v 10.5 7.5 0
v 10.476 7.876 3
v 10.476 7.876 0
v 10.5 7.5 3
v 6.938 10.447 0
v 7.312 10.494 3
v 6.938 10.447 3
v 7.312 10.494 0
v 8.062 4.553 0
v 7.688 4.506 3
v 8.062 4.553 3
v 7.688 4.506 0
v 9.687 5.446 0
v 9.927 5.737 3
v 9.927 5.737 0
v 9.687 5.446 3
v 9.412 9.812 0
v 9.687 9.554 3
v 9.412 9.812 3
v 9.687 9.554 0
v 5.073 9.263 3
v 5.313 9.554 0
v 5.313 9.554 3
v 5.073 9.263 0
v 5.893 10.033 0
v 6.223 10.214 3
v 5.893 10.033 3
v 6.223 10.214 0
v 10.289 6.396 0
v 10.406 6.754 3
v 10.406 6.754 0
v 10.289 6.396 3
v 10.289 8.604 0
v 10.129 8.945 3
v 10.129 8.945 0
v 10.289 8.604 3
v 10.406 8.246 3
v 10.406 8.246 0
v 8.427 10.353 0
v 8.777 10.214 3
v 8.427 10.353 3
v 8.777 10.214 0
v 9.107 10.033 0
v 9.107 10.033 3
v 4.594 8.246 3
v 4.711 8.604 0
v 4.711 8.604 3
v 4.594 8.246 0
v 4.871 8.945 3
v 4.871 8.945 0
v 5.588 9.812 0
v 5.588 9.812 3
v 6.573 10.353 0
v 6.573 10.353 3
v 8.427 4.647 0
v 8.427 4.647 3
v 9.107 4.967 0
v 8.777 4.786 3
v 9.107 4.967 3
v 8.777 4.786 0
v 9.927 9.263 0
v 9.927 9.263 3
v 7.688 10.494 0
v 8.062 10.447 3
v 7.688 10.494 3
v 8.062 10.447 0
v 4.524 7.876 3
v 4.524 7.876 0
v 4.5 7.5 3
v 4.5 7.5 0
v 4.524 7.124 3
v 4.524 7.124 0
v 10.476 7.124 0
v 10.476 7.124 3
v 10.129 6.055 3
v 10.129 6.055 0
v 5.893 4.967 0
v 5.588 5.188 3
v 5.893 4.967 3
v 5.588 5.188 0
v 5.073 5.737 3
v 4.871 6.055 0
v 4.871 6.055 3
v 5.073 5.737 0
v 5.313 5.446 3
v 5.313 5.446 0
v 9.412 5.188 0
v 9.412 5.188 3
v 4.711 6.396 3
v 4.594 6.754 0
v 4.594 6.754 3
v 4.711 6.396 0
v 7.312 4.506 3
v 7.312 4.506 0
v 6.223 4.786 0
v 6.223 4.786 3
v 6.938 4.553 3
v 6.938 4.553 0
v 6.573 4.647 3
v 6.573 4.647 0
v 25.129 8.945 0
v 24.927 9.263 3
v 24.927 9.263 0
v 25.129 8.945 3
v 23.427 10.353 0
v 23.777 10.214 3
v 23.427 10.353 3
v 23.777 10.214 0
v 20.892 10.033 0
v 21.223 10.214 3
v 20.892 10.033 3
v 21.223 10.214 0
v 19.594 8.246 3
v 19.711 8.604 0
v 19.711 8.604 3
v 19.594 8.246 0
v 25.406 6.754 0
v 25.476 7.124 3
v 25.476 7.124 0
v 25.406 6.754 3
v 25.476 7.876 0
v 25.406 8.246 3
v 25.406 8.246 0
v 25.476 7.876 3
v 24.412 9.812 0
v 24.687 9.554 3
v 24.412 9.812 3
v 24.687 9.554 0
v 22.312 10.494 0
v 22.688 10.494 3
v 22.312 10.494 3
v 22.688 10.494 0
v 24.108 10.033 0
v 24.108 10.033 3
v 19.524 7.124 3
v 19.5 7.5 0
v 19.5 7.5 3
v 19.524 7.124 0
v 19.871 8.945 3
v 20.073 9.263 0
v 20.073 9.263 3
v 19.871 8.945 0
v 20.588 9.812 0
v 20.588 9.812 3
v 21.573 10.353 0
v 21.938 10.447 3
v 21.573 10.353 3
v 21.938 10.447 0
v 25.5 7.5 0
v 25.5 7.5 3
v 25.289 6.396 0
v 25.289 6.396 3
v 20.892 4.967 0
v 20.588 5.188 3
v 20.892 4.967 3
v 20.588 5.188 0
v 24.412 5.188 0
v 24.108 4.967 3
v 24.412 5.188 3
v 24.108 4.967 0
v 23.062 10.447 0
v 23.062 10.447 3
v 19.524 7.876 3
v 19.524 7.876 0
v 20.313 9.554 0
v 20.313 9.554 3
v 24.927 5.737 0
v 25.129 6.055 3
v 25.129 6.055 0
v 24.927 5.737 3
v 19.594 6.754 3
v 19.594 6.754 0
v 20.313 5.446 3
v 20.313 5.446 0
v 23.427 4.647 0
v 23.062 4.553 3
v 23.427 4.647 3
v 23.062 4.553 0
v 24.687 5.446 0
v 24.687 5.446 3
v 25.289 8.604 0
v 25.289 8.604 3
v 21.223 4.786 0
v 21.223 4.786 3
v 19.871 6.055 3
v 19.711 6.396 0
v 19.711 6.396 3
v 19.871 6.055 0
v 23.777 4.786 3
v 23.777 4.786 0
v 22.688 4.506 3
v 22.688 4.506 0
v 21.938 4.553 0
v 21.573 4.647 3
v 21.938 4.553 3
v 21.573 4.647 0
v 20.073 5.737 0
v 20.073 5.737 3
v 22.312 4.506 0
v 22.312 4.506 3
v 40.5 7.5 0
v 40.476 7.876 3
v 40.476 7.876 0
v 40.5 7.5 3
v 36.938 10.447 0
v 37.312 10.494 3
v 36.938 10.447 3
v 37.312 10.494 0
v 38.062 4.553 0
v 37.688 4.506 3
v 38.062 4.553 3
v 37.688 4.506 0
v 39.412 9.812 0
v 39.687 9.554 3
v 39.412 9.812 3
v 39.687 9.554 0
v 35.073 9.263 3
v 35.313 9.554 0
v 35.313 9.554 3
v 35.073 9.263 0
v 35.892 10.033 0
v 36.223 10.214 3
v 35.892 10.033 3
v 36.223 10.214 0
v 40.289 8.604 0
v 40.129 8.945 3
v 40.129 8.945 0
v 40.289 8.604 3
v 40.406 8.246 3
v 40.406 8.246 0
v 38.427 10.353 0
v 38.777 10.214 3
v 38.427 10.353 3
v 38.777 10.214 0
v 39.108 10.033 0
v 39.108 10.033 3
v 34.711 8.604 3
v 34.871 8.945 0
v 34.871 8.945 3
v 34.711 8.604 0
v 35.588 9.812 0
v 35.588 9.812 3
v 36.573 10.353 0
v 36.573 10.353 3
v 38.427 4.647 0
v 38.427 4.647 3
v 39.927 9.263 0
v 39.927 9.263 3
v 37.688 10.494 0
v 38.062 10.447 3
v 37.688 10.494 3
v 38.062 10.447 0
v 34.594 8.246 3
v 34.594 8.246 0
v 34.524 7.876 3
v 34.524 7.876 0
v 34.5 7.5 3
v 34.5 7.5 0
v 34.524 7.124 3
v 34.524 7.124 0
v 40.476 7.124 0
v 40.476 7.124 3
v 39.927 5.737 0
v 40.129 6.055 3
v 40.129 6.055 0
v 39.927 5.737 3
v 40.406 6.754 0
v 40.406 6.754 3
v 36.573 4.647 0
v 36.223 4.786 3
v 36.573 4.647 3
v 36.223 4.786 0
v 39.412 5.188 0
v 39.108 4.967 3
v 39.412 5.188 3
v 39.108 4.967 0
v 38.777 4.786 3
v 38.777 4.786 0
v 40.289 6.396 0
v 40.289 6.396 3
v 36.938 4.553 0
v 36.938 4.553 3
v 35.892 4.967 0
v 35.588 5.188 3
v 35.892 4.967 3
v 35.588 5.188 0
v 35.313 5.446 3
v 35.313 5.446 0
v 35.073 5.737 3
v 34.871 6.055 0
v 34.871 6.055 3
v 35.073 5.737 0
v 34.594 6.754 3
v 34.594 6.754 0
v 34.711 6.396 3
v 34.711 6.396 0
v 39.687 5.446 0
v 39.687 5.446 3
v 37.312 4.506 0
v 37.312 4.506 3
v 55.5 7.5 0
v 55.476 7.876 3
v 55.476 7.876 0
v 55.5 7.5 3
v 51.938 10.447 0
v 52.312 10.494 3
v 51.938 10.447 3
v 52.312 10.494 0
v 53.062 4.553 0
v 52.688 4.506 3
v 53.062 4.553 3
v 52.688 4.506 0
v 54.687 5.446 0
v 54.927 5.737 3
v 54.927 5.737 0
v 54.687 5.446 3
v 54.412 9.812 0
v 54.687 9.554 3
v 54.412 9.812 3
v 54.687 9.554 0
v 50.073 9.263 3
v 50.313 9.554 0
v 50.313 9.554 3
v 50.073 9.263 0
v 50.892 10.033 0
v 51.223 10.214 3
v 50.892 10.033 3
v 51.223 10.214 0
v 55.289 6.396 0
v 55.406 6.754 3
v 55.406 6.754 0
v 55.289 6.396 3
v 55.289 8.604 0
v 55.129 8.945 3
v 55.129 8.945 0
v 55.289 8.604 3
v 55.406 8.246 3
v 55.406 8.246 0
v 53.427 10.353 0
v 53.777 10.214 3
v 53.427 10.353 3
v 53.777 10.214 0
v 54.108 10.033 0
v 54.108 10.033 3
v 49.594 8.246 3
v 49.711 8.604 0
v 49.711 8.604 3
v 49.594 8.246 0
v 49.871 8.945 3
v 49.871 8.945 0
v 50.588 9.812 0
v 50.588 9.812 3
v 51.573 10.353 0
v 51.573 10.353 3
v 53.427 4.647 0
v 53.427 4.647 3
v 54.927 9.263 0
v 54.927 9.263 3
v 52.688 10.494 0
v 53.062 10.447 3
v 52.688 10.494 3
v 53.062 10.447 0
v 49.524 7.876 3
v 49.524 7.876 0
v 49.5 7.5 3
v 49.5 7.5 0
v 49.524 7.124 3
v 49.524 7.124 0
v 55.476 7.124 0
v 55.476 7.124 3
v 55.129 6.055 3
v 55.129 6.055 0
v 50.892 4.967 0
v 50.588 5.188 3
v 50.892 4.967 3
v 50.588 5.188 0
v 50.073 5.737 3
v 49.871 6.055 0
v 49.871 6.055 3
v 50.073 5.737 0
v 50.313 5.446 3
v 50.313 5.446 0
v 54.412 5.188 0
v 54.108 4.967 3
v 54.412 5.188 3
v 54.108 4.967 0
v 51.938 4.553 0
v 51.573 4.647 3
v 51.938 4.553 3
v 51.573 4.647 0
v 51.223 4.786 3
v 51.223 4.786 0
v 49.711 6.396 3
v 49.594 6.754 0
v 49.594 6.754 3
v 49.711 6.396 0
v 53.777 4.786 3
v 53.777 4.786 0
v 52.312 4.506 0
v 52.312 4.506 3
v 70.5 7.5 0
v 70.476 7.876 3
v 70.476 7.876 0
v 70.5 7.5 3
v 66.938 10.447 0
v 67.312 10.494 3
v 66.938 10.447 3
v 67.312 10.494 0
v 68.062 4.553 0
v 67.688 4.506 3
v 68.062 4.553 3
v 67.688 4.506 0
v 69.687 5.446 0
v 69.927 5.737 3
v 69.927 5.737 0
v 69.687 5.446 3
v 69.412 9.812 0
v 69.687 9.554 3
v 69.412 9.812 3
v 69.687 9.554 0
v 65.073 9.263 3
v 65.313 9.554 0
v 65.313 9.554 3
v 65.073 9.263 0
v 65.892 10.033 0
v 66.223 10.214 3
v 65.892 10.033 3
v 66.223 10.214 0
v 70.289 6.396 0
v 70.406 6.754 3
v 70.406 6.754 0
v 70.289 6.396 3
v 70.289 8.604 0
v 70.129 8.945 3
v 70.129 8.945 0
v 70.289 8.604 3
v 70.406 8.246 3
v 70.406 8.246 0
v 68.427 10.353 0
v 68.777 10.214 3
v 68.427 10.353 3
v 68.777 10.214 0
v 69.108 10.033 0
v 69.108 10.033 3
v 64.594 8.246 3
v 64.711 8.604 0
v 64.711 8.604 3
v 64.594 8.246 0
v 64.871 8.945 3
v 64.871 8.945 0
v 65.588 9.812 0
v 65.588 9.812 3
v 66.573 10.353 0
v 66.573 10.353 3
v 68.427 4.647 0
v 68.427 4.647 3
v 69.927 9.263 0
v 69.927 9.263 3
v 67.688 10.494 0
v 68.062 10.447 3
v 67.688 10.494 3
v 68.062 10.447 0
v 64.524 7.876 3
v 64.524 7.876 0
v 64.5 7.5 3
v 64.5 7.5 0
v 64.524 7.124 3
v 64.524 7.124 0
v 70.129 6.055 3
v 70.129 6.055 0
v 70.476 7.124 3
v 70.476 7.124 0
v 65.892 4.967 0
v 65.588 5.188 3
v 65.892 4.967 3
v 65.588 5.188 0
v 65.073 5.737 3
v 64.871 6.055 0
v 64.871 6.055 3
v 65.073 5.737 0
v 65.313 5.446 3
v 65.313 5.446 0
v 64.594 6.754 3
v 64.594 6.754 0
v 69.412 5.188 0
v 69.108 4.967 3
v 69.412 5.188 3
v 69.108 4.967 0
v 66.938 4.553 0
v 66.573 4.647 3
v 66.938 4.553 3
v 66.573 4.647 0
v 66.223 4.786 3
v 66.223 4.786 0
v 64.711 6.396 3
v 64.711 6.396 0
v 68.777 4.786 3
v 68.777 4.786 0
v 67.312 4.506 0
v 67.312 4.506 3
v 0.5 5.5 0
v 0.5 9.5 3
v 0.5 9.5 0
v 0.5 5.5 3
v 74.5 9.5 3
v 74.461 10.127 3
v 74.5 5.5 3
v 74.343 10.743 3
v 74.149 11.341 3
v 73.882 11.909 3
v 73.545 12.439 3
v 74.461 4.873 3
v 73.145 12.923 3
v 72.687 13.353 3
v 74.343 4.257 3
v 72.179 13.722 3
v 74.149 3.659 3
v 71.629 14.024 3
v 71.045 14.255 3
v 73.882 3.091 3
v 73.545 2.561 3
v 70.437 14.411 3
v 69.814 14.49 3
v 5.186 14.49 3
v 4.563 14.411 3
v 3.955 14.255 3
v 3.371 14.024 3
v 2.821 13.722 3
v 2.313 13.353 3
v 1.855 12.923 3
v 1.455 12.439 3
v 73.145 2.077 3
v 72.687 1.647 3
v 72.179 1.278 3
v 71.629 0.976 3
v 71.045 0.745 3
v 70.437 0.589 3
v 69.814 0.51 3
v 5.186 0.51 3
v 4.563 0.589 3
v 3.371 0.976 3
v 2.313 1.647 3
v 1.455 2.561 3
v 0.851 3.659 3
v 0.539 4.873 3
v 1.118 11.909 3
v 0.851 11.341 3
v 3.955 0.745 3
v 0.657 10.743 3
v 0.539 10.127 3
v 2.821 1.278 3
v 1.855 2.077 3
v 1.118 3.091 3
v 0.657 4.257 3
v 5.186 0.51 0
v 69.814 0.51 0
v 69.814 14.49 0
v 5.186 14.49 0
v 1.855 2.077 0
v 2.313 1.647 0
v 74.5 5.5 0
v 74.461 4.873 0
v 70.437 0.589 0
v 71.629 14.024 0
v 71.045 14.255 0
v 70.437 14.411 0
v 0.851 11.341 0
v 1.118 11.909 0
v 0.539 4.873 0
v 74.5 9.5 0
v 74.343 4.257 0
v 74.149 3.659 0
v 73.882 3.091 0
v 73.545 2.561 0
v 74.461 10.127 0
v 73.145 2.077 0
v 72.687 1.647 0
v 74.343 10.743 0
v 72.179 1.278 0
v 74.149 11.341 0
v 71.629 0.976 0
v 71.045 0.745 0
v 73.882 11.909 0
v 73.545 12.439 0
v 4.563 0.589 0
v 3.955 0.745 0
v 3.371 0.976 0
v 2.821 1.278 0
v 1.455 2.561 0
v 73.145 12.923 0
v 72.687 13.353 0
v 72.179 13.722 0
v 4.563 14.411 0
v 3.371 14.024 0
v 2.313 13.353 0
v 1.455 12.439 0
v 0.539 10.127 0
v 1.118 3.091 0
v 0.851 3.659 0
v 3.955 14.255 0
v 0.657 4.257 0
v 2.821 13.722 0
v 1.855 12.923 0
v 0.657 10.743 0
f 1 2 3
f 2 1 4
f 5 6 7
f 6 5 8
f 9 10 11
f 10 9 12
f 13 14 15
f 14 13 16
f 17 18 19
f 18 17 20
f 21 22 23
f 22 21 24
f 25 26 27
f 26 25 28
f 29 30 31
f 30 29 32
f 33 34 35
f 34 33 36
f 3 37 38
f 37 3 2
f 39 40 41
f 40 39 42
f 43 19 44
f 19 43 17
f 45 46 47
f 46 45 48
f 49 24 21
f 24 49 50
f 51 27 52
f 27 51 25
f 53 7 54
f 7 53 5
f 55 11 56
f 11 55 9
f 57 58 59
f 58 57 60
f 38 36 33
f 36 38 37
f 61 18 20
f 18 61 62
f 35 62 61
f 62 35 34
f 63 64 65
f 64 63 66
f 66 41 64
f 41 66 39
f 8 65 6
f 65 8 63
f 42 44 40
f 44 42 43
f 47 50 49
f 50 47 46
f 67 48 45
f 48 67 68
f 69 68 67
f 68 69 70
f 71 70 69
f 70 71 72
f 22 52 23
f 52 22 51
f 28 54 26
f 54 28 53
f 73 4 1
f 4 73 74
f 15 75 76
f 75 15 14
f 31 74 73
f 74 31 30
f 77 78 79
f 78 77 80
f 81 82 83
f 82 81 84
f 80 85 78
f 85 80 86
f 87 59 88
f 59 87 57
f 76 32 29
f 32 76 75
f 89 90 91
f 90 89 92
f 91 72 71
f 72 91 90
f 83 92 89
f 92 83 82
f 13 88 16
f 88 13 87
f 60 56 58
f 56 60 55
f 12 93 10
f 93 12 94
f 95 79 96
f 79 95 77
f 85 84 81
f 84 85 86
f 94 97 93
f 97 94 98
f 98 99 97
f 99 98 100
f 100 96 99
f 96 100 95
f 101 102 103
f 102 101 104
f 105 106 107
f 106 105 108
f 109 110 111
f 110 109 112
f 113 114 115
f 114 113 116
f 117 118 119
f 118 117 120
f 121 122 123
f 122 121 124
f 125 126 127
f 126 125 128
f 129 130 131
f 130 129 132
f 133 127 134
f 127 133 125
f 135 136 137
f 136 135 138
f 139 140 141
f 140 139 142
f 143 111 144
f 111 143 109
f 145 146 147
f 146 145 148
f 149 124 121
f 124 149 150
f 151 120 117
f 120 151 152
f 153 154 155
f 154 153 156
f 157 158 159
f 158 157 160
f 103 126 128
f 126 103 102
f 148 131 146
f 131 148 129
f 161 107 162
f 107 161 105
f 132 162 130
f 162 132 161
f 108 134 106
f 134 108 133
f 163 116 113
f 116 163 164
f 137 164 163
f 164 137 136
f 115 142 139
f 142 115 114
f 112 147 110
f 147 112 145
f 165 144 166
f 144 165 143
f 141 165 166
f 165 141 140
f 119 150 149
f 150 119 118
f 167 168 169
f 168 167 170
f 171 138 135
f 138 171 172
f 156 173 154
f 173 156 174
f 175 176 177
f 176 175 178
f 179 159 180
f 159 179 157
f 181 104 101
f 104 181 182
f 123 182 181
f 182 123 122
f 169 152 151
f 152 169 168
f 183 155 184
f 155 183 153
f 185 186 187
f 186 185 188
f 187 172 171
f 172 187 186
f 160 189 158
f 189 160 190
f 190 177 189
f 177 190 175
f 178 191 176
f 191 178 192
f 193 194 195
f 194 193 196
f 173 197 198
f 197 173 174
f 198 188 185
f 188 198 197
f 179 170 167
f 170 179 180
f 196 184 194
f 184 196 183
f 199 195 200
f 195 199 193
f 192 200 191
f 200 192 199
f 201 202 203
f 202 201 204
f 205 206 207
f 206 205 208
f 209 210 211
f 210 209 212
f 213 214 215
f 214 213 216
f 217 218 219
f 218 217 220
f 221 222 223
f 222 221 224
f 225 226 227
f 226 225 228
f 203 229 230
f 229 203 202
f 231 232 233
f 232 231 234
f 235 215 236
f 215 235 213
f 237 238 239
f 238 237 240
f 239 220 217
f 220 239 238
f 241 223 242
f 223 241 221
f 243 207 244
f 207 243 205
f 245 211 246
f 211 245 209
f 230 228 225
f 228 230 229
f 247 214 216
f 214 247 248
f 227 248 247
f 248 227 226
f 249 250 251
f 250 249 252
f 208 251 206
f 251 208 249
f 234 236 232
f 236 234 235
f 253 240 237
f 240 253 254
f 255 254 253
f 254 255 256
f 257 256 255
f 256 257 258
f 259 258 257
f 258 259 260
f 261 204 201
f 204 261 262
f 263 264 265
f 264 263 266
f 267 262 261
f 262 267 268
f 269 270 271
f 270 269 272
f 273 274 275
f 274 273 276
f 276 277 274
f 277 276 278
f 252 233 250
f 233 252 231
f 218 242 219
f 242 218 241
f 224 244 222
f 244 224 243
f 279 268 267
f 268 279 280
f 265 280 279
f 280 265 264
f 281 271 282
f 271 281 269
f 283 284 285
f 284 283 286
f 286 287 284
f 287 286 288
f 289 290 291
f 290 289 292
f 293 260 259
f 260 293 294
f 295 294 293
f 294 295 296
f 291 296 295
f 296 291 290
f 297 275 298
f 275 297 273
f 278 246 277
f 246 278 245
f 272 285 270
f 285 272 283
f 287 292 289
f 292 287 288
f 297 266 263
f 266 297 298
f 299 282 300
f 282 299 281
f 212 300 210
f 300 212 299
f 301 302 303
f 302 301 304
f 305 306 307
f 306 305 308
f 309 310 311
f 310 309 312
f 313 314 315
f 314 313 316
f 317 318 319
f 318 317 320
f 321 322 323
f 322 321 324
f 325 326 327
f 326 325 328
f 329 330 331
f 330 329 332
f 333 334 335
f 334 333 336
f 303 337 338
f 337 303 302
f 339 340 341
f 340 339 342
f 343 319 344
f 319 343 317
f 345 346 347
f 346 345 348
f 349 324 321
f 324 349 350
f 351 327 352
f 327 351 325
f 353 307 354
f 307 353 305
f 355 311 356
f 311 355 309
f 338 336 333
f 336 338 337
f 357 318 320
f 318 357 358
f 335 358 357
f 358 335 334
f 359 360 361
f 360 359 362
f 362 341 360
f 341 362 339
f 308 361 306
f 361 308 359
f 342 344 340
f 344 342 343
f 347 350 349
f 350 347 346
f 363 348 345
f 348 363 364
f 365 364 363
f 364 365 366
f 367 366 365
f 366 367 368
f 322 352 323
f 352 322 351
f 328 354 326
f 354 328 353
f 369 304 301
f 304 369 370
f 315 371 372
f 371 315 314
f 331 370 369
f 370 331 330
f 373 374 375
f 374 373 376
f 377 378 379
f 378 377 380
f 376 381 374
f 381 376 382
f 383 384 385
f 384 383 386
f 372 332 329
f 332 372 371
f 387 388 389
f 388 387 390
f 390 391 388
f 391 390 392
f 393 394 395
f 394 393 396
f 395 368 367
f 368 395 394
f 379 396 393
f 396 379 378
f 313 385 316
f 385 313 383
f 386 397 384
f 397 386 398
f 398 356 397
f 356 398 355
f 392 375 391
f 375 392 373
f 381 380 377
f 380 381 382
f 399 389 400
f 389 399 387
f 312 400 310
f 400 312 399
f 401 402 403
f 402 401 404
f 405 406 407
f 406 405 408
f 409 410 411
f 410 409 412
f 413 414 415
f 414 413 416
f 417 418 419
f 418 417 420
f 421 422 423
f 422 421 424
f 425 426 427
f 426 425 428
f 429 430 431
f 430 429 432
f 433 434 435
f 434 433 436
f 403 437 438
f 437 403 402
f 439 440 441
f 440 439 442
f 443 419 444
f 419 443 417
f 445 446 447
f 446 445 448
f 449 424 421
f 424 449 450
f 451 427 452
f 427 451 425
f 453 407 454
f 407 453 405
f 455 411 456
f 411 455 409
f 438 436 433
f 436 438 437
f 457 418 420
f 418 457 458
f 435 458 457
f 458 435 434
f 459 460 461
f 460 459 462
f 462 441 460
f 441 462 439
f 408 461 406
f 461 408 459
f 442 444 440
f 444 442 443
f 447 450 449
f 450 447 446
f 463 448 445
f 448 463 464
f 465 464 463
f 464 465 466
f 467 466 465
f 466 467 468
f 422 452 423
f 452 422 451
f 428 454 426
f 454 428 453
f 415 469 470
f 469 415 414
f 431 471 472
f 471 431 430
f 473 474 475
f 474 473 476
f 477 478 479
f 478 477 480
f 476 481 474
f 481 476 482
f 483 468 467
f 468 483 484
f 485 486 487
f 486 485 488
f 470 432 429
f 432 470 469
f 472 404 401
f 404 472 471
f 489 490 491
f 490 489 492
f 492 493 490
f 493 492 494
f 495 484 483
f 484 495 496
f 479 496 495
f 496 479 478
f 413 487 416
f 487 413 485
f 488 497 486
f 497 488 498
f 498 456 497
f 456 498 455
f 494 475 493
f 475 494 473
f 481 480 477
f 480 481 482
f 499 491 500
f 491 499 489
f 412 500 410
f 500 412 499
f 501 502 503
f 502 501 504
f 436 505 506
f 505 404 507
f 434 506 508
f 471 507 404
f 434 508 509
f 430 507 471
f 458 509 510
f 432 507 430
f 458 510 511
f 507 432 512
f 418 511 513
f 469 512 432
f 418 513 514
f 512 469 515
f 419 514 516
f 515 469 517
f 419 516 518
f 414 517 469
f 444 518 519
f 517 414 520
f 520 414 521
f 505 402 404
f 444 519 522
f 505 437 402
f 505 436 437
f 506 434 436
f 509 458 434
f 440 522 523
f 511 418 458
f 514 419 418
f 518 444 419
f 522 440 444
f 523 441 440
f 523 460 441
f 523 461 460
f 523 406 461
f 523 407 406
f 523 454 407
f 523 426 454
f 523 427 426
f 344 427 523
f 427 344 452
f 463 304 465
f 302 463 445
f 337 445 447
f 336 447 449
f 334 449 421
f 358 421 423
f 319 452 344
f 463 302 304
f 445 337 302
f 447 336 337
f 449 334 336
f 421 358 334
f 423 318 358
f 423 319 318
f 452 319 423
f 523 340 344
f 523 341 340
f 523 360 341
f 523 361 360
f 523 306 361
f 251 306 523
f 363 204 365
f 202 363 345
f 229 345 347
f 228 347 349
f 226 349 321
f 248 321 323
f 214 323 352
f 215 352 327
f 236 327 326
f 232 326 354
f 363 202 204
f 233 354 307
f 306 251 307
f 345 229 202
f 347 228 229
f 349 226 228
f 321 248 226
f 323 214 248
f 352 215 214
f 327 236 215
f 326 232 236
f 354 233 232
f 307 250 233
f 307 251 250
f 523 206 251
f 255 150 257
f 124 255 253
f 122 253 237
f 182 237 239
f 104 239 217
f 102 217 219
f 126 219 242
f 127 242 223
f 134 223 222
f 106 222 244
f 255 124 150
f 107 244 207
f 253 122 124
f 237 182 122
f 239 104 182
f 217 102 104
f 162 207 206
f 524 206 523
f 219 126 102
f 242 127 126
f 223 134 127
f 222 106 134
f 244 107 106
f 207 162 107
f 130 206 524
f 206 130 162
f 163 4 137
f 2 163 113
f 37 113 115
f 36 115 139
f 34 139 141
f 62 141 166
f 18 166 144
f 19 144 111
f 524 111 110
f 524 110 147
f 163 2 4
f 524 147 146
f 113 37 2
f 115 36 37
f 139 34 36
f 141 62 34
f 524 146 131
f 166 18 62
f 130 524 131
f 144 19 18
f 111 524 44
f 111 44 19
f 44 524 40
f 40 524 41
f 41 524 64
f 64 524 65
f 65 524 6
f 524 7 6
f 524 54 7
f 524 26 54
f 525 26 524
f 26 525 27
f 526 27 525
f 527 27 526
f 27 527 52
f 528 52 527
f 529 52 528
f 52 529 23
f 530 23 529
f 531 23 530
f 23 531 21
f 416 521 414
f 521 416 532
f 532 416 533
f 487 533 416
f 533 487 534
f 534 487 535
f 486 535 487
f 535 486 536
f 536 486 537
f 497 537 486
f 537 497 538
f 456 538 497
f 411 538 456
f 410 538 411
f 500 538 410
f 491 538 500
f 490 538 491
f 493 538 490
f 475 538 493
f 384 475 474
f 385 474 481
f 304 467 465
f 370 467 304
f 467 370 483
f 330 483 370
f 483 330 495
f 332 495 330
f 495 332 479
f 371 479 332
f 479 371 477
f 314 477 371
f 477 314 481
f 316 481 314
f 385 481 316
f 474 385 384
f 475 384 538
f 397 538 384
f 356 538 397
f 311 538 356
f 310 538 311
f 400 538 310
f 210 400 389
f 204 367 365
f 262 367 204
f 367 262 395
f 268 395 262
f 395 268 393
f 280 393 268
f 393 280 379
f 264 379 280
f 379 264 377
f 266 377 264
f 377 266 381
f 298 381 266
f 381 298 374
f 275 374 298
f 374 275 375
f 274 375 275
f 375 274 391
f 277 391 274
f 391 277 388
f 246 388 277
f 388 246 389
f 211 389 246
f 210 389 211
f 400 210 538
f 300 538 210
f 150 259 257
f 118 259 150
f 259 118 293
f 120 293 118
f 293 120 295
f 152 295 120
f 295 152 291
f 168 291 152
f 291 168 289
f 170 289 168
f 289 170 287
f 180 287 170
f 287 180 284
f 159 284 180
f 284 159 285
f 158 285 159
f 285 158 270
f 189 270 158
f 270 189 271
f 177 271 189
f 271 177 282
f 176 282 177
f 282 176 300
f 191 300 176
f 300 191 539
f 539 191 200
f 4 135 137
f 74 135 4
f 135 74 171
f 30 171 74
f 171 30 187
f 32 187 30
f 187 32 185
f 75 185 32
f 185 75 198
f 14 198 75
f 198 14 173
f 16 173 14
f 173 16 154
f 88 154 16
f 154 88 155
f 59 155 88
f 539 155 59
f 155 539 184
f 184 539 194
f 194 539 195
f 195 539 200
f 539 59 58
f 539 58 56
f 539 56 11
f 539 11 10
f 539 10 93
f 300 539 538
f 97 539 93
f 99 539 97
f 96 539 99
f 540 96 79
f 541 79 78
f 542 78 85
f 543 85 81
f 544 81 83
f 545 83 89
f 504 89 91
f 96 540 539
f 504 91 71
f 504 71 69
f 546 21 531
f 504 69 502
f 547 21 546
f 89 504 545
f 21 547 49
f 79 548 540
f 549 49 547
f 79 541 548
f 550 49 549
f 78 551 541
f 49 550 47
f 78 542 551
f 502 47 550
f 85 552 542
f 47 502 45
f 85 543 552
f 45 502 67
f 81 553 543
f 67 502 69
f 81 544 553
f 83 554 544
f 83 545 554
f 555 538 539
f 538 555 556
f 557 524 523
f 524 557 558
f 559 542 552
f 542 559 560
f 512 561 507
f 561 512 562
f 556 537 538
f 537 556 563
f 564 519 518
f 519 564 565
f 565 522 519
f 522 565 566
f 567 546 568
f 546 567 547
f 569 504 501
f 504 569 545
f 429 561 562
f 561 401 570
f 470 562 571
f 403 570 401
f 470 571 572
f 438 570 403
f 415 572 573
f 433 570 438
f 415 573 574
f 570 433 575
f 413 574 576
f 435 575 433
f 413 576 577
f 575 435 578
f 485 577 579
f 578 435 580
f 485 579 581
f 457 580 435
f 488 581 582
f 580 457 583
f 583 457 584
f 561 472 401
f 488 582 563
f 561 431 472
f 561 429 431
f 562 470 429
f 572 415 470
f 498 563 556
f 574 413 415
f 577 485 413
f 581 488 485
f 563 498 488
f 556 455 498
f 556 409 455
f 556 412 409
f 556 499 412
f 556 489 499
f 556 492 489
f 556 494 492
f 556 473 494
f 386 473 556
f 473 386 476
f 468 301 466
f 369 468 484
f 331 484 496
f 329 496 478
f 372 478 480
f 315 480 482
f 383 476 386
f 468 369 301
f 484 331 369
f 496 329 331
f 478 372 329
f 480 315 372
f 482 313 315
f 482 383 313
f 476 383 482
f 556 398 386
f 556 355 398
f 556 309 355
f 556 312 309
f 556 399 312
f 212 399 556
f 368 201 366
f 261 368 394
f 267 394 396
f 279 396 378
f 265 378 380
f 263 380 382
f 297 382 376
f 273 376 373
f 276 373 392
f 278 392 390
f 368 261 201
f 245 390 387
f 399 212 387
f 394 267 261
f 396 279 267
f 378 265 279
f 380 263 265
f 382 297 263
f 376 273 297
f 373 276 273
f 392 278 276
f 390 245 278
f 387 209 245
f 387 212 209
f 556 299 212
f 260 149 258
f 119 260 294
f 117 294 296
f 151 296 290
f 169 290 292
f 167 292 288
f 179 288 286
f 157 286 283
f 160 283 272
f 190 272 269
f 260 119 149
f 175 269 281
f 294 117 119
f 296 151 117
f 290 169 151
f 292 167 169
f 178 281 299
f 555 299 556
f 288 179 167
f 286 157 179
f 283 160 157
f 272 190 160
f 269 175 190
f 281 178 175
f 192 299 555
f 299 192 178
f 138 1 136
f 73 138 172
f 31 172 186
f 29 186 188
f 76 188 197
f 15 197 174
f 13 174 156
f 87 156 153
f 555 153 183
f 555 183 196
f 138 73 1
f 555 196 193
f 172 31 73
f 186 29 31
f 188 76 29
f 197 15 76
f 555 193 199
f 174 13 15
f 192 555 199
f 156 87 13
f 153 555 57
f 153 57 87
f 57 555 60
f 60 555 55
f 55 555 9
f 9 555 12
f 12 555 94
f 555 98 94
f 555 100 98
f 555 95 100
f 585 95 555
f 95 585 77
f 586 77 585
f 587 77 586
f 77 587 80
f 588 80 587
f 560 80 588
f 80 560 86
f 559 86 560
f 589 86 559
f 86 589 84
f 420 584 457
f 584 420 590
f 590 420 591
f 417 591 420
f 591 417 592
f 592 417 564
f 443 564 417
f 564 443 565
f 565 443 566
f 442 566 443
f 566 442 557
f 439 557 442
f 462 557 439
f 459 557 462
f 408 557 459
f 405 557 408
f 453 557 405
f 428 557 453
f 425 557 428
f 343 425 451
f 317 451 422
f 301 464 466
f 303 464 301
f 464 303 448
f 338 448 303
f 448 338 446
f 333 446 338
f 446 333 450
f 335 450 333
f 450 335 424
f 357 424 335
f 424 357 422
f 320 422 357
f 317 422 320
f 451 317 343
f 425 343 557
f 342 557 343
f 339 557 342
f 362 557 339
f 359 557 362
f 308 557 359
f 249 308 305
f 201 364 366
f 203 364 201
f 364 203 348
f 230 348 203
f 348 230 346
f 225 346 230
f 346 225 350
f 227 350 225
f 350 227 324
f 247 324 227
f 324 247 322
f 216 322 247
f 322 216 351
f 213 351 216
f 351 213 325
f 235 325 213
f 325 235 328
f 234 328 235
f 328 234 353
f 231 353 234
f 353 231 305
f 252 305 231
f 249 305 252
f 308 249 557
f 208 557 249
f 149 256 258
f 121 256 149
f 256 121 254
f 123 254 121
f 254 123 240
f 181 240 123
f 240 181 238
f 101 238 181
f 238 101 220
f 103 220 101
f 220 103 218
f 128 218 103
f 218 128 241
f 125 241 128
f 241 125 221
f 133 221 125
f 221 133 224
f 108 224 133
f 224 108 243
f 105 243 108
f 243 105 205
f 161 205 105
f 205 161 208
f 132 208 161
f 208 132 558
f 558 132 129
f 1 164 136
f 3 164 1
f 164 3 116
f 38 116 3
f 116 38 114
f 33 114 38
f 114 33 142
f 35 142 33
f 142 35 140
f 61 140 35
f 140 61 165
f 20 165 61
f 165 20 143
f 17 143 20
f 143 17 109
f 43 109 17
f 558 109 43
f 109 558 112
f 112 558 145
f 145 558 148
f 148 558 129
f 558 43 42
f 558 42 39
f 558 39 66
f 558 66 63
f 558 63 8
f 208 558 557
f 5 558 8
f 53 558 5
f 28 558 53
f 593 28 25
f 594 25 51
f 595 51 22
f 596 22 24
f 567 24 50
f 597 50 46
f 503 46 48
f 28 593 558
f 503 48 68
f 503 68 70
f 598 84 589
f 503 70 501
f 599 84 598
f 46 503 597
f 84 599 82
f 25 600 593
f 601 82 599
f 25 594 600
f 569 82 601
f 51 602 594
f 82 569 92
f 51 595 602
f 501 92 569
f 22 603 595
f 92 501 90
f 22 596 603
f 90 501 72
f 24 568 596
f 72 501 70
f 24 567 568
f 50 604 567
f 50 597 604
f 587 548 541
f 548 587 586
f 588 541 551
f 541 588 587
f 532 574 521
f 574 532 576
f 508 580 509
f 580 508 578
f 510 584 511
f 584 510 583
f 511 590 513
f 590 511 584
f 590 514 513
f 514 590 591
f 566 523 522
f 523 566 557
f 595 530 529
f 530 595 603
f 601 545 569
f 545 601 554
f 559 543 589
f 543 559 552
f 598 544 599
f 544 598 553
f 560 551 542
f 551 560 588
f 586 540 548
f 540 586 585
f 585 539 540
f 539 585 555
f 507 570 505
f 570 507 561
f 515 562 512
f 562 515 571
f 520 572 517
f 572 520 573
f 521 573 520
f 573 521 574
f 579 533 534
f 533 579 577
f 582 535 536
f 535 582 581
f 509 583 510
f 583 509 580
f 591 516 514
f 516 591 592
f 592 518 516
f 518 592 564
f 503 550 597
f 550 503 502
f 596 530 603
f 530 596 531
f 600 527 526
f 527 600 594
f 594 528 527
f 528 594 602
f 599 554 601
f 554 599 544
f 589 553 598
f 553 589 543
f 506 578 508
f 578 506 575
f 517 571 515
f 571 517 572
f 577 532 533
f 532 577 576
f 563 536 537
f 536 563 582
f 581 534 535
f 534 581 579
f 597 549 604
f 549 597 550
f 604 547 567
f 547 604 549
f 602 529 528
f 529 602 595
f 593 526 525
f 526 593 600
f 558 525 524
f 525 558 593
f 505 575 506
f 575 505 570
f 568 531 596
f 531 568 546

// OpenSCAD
// Generated by SolidPython 1.1.3 on 2023-01-09 15:00:26
$fn = 50;


difference() {
	union() {
		translate(v = [37.5000000000, 7.5000000000, 0]) {
			rotate(a = [0, 0, 0]) {
				hull() {
					translate(v = [-32.0000000000, 2.0000000000, 0]) {
						rotate(a = [0, 0, 0]) {
							translate(v = [0, 0, 0]) {
								rotate(a = [0, 0, 0]) {
									cylinder(h = 3, r = 5);
								}
							}
						}
					}
					translate(v = [32.0000000000, 2.0000000000, 0]) {
						rotate(a = [0, 0, 0]) {
							translate(v = [0, 0, 0]) {
								rotate(a = [0, 0, 0]) {
									cylinder(h = 3, r = 5);
								}
							}
						}
					}
					translate(v = [-32.0000000000, -2.0000000000, 0]) {
						rotate(a = [0, 0, 0]) {
							translate(v = [0, 0, 0]) {
								rotate(a = [0, 0, 0]) {
									cylinder(h = 3, r = 5);
								}
							}
						}
					}
					translate(v = [32.0000000000, -2.0000000000, 0]) {
						rotate(a = [0, 0, 0]) {
							translate(v = [0, 0, 0]) {
								rotate(a = [0, 0, 0]) {
									cylinder(h = 3, r = 5);
								}
							}
						}
					}
				}
			}
		}
	}
	union() {
		translate(v = [7.5000000000, 7.5000000000, 0]) {
			rotate(a = [0, 0, 0]) {
				translate(v = [0, 0, -50]) {
					rotate(a = [0, 0, 0]) {
						cylinder(h = 100, r = 3.0000000000);
					}
				}
			}
		}
		translate(v = [22.5000000000, 7.5000000000, 0]) {
			rotate(a = [0, 0, 0]) {
				translate(v = [0, 0, -50]) {
					rotate(a = [0, 0, 0]) {
						cylinder(h = 100, r = 3.0000000000);
					}
				}
			}
		}
		translate(v = [37.5000000000, 7.5000000000, 0]) {
			rotate(a = [0, 0, 0]) {
				translate(v = [0, 0, -50]) {
					rotate(a = [0, 0, 0]) {
						cylinder(h = 100, r = 3.0000000000);
					}
				}
			}
		}
		translate(v = [52.5000000000, 7.5000000000, 0]) {
			rotate(a = [0, 0, 0]) {
				translate(v = [0, 0, -50]) {
					rotate(a = [0, 0, 0]) {
						cylinder(h = 100, r = 3.0000000000);
					}
				}
			}
		}
		translate(v = [67.5000000000, 7.5000000000, 0]) {
			rotate(a = [0, 0, 0]) {
				translate(v = [0, 0, -50]) {
					rotate(a = [0, 0, 0]) {
						cylinder(h = 100, r = 3.0000000000);
					}
				}
			}
		}
	}
}
/***********************************************
*********      SolidPython code:      **********
************************************************
 
from solid import *
import os
import subprocess

import oomB

import opsc_library_gen

mode = "laser"
#mode = "3d_print"

defined_objects = {}

radius_dict = {}
countersunk_dict = {}


def set_mode(m):
    global mode
    mode = m
    radius_dict['M6'] = 6.5/2
    radius_dict['M3'] = 3.3/2
    if mode == "laser":
        radius_dict['M6'] = 6/2
        radius_dict['M3'] = 3/2

    countersunk_dict['M3'] = {}
    countersunk_dict['M3']['little_rad'] = radius_dict['M3']
    countersunk_dict['M3']['big_rad'] = (5.5+0.6)/2
    if mode == "laser":
        countersunk_dict['M3']['big_rad'] = (4.75+0.6)/2
        countersunk_dict['M3']['little_rad'] = (4.75+0.6)/2

    countersunk_dict['M3']['height'] = 1.7


def opsc_make_object(filename, objects, save_type="none",resolution=50, layers = 1, tilediff = 200, mode="laser"):
    set_mode(mode)
    save_type = save_type.lower()
    os.makedirs(os.path.dirname(filename), exist_ok=True)
    final_object = opsc_get_object(objects)
    # Save the final object to the specified filename    
    scad_render_to_file(final_object, filename, file_header='$fn = %s;' % resolution, include_orig_code=True)
    if mode == "laser":
        filename_laser = filename.replace(".scad","-flat.scad")
        scad_render_to_file(getLaser(final_object, layers=layers, tilediff=tilediff), filename_laser, file_header='$fn = %s;' % resolution, include_orig_code=True)
        if save_type == "all":
            saveToAll(filename_laser)
        elif save_type == "dxf":
            saveToDxf(filename_laser)
    if save_type == "all":
        saveToAll(filename)
    elif save_type == "dxf":
        saveToDxf(filename)


def opsc_get_object(objects):
    # Create the solidpython objects
    positive_objects = [get_opsc_item(obj) for obj in objects if obj['type'] == 'positive']
    negative_objects = [get_opsc_item(obj) for obj in objects if obj['type'] == 'negative']
    # Union the positive objects
    positive_object = union()(*positive_objects)
    # Union the negative objects
    negative_object = union()(*negative_objects)
    # Create the final object by subtracting the negative objects from the positive objects
    return difference()(positive_object, negative_object)

def get_opsc_item(params):
    # A dictionary to map radius string values to numerical values
    #radius_dict = {'small': 5, 'medium': 10, 'large': 15}
    # An array of function names for basic shapes
    basic_shapes = ['cube', 'sphere', 'cylinder']
    
    # An array of function names for other shapes
    other_shapes = ['hole', 'slot', 'rounded_rectangle', 'countersunk']
    


    # Convert radius to r if present, and remove radius from the params dictionary
    if 'radius' in params:
        if isinstance(params['radius'], str):
            # Use the radius_dict to map the radius string value to a numerical value
            params['r'] = radius_dict[params['radius']]
        else:
            params['r'] = params['radius']
        del params['radius']
    

    # Check if the object type is a basic shape
    if params['shape'] in basic_shapes:
        # Remove shape and unexpected dictionary values
        allowed_keys = {'size', 'r', 'r1', 'r2', 'd', 'h', 'rw', 'rh', 'dw', 'dh'}
        shape_params = {k: v for k, v in params.items() if k in allowed_keys}

        # Call the corresponding function for the shape parameter, using ** notation to pass the shape_params dictionary as keyword arguments
        return get_opsc_transform(params,globals()[params['shape']](**shape_params))
    
    # If the object type is not a basic shape, check if it's a defined object or one of the other shapes
    elif params['shape'] in other_shapes:
        # Call the corresponding function for the shape parameter, passing the params dictionary as an argument
        p2 = copy.deepcopy(params)
        p2["pos"] = [0,0,0]
        return get_opsc_transform(params,globals()[params['shape']](p2))
    
    # If the object is not a basic shape or a defined object, try to import it from a .scad file
    else:
        obj = defined_objects[params['shape']]
        return get_opsc_transform(params,obj)

def get_opsc_transform(params, solid_obj):
    # Rotate the object based on the 'rot' field in the params dictionary, or the 'rotX', 'rotY', and 'rotZ' fields if 'rot' is not present
    rot = params.get('rot', [])
    if rot:
        rotX, rotY, rotZ = rot
    else:
        rotX = params.get('rotX', 0)
        rotY = params.get('rotY', 0)
        rotZ = params.get('rotZ', 0)
    solid_obj = rotate([rotX, rotY, rotZ])(solid_obj)

    # Translate the object based on the 'pos' field in the params dictionary, or the 'x', 'y', and 'z' fields if 'pos' is not present
    pos = params.get('pos', [])
    if pos:
        x, y, z = pos
    else:
        x = params.get('x', 0)
        y = params.get('y', 0)
        z = params.get('z', 0)
    solid_obj = translate([x, y, z])(solid_obj)
    return solid_obj


import random

def opsc_easy_array(type, shape, repeats, pos_start, shift_arr, **kwargs):
    for i in range(0,3):
        repeats.append(1)
        pos_start.append(0)
        shift_arr.append(0)
    return_objects = []

    for x in range(0,repeats[0]):
        for y in range(0,repeats[1]):
            for z in range(0,repeats[2]):
                return_objects.append(opsc_easy(type, shape, pos=[pos_start[0]+x*shift_arr[0],pos_start[1]+y*shift_arr[1],pos_start[2]+z*shift_arr[2]], **kwargs))
    return return_objects                



def opsc_easy(type, shape, **kwargs):
    obj = {
        'type': type,
        'shape': shape
    }
    for param in ['size', 'r', 'r1', 'r2', 'd', 'h', 'rw', 'rh', 'dw', 'dh', 'pos', 'x', 'y', 'z', 'rot', 'rotX', 'rotY', 'rotZ', "w"]:
        if param in kwargs:
            obj[param] = kwargs[param]
    return obj

def hole(params):
    p2 = copy.deepcopy(params)  
    # Check if the radius is a string and replace it with the corresponding value from the dictionary
    if isinstance(p2['r'], str):
        p2['r'] = radius_dict[p2['r']]
    
    # Set the height to 100 if not specified
    if 'h' not in p2:
        p2['h'] = 100
        p2["pos"] = [0,0,-50]
    p2["center"] = True
    # Create the cylinder object
    p2["shape"] = "cylinder"
    p2["type"] = "positive"

    return get_opsc_item(p2)

import copy

def countersunk(params):
    p2 = copy.deepcopy(params)
    counter_rad = p2['r']
    p2['r'] = radius_dict[p2['r']]
    hp = copy.deepcopy(p2)
    hp["type"] = "positive"
    hp["shape"] = "hole"
    del hp["rot"]
    hol = get_opsc_item(hp)
    
    cp = copy.deepcopy(p2)
    cp["h"] = countersunk_dict[counter_rad]["height"]
    cp["r2"] = countersunk_dict[counter_rad]["little_rad"]
    cp["r1"] = countersunk_dict[counter_rad]["big_rad"]
    del cp["r"]
    del cp["rot"]
    cp["type"] = "positive"
    cp["shape"] = "cylinder"
    cp["pos"] = [0,0,0]

    top = get_opsc_item(cp)
    return union()(hol,top)



def slot(params):  
    p2 = copy.deepcopy(params) 
    if isinstance(p2['r'], str):
        p2['r'] = radius_dict[p2['r']]
    p2["type"] = "positive"
    p2["shape"] = "hole"
    del p2["rot"]
    p2["pos"] = [0,0,0]
    left = copy.deepcopy(p2)
    right = copy.deepcopy(p2)
    left["pos"][0] = p2["w"] / 2 - p2["r"] 
    
    right["pos"][0] = -p2["w"] / 2 + p2["r"] 
    pass
    leftObj = get_opsc_item(left)
    rightObj = get_opsc_item(right)
    return hull()(leftObj, rightObj)

def rounded_rectangle(params):   
    p2 = copy.deepcopy(params) 
    p2["h"] = p2["size"][2]
    p2["pos"] = p2.get("pos", [0, 0, 0]) 
    p2["type"] = "positive"
    p2["shape"] = "hole"
    p2["pos"] = [0,0,0]
    
    if 'rot' in p2:
        del p2["rot"]   
    if 'r' not in p2:
        p2["r"] = 5 
    tl = copy.deepcopy(p2)
    tr = copy.deepcopy(p2)
    bl = copy.deepcopy(p2)
    br = copy.deepcopy(p2)
    tl["pos"][0] = -(p2["size"][0] - p2["r"]*2)/2
    tl["pos"][1] = (p2["size"][1] - p2["r"]*2)/2
    tr["pos"][0] = (p2["size"][0] - p2["r"]*2)/2
    tr["pos"][1] = (p2["size"][1] - p2["r"]*2)/2
    bl["pos"][0] = -(p2["size"][0] - p2["r"]*2)/2
    bl["pos"][1] = -(p2["size"][1] - p2["r"]*2)/2
    br["pos"][0] = (p2["size"][0] - p2["r"]*2)/2
    br["pos"][1] = -(p2["size"][1] - p2["r"]*2)/2
    del tl["size"]
    del tr["size"]
    del bl["size"]
    del br["size"]
    tlo = get_opsc_item(tl)
    tro = get_opsc_item(tr)
    blo = get_opsc_item(bl)
    bro = get_opsc_item(br)    
    return hull()(tlo, tro, blo, bro)



def import_scad_object(filename):
    # Import the .scad file and convert it to a solidpython object
    #filename = "parts"
    obj = import_scad(filename)
    return obj.main()
    


import os
import solid as solidpython

# A dictionary to store the defined objects


def load_scad_objects():
    opsc_library_gen.gen_library(defined_objects)

import random

def test(num_objects):
    objects = []
    for i in range(num_objects):
        # Choose a random shape
        #shape = random.choice(['cube', 'sphere', 'cylinder', 'hole', 'slot', "rounded_rectangle"])
        shape = random.choice(["rounded_rectangle"])

        # Choose a random type
        type = random.choice(['positive', 'negative'])
        
        # Create an empty object dictionary
        obj = {'shape': shape, 'type': type}
        
        # Set shape-specific parameters
        if obj['shape'] in ['cube']:
            obj['size'] =  [random.uniform(5, 15), random.uniform(5, 15), random.uniform(5, 15)]
        if obj['shape'] in ['rounded_rectangle']:
            obj['size'] =  [random.uniform(5, 15), random.uniform(5, 15), random.uniform(5, 15)]
            obj['r'] = random.uniform(0.5, 5)
        elif obj['shape'] == 'sphere':
            obj['r'] = random.uniform(5, 15)
        elif obj['shape'] in ['cylinder', 'hole']:
            obj['r'] = random.uniform(0.5, 5)
            obj['h'] = random.uniform(5, 15)
        elif obj['shape'] == 'slot':
            obj['r'] = random.uniform(0.5, 5)
            obj['h'] = random.uniform(5, 15)
            obj['w'] = random.uniform(5, 15)
        
        # Set a random position and rotation
        obj['pos'] = [random.uniform(-20, 20), random.uniform(-20, 20), random.uniform(-20, 20)]
        obj['rot'] = [random.uniform(-180, 180), random.uniform(-180, 180), random.uniform(-180, 180)]
        
        # Add the object to the list
        objects.append(obj)
    return objects

####### old file saving
def saveToAll(fileIn):
    saveToDxf(fileIn)
    saveToPng(fileIn)
    saveToStl(fileIn)
    saveToSvg(fileIn)

def saveToDxf(fileIn, fileOut="", copy_to_laser=True):
    if fileOut == "":
        fileOut = fileIn.replace(".scad",".dxf")
    saveToFile(fileIn, fileOut)


    
def saveToPng(fileIn, fileOut="",extra="--render"):
    if fileOut == "":
        fileOut = fileIn.replace(".scad",".png")
    saveToFile(fileIn, fileOut)

def saveToStl(fileIn, fileOut=""):
    if fileOut == "":
        fileOut = fileIn.replace(".scad",".stl")
    saveToFile(fileIn, fileOut)
    
def saveToSvg(fileIn, fileOut=""):
    if fileOut == "":
        fileOut = fileIn.replace(".scad",".svg")
    saveToFile(fileIn, fileOut)

def saveToFile(fileIn, fileOut,extra=""):
    #extra = extra + " --colorscheme Tomorrow"

    launchStr = 'openscad -o "' + fileOut + '"' + extra + ' "' + fileIn + '"'
    if ".png" in fileOut:
        launchStr = launchStr + " --render"
    print("            saveToFile launch string: " + launchStr)
    subprocess.run(launchStr)
    x=0

def getLaser(final_object,start=1.5,layers=1,thickness=3,tilediff=200):
        rv= []

        for x in range(layers):
            rv.append(translate([0,x*tilediff,0])(
                    projection()(
                        intersection()(translate([-500,-500,start+x*thickness])(cube(size=[1000,1000,0.1])),
                            final_object
                        )
                    )
            )
            )
            
        return union()(rv)

set_mode("laser")
load_scad_objects() 
 
************************************************/
